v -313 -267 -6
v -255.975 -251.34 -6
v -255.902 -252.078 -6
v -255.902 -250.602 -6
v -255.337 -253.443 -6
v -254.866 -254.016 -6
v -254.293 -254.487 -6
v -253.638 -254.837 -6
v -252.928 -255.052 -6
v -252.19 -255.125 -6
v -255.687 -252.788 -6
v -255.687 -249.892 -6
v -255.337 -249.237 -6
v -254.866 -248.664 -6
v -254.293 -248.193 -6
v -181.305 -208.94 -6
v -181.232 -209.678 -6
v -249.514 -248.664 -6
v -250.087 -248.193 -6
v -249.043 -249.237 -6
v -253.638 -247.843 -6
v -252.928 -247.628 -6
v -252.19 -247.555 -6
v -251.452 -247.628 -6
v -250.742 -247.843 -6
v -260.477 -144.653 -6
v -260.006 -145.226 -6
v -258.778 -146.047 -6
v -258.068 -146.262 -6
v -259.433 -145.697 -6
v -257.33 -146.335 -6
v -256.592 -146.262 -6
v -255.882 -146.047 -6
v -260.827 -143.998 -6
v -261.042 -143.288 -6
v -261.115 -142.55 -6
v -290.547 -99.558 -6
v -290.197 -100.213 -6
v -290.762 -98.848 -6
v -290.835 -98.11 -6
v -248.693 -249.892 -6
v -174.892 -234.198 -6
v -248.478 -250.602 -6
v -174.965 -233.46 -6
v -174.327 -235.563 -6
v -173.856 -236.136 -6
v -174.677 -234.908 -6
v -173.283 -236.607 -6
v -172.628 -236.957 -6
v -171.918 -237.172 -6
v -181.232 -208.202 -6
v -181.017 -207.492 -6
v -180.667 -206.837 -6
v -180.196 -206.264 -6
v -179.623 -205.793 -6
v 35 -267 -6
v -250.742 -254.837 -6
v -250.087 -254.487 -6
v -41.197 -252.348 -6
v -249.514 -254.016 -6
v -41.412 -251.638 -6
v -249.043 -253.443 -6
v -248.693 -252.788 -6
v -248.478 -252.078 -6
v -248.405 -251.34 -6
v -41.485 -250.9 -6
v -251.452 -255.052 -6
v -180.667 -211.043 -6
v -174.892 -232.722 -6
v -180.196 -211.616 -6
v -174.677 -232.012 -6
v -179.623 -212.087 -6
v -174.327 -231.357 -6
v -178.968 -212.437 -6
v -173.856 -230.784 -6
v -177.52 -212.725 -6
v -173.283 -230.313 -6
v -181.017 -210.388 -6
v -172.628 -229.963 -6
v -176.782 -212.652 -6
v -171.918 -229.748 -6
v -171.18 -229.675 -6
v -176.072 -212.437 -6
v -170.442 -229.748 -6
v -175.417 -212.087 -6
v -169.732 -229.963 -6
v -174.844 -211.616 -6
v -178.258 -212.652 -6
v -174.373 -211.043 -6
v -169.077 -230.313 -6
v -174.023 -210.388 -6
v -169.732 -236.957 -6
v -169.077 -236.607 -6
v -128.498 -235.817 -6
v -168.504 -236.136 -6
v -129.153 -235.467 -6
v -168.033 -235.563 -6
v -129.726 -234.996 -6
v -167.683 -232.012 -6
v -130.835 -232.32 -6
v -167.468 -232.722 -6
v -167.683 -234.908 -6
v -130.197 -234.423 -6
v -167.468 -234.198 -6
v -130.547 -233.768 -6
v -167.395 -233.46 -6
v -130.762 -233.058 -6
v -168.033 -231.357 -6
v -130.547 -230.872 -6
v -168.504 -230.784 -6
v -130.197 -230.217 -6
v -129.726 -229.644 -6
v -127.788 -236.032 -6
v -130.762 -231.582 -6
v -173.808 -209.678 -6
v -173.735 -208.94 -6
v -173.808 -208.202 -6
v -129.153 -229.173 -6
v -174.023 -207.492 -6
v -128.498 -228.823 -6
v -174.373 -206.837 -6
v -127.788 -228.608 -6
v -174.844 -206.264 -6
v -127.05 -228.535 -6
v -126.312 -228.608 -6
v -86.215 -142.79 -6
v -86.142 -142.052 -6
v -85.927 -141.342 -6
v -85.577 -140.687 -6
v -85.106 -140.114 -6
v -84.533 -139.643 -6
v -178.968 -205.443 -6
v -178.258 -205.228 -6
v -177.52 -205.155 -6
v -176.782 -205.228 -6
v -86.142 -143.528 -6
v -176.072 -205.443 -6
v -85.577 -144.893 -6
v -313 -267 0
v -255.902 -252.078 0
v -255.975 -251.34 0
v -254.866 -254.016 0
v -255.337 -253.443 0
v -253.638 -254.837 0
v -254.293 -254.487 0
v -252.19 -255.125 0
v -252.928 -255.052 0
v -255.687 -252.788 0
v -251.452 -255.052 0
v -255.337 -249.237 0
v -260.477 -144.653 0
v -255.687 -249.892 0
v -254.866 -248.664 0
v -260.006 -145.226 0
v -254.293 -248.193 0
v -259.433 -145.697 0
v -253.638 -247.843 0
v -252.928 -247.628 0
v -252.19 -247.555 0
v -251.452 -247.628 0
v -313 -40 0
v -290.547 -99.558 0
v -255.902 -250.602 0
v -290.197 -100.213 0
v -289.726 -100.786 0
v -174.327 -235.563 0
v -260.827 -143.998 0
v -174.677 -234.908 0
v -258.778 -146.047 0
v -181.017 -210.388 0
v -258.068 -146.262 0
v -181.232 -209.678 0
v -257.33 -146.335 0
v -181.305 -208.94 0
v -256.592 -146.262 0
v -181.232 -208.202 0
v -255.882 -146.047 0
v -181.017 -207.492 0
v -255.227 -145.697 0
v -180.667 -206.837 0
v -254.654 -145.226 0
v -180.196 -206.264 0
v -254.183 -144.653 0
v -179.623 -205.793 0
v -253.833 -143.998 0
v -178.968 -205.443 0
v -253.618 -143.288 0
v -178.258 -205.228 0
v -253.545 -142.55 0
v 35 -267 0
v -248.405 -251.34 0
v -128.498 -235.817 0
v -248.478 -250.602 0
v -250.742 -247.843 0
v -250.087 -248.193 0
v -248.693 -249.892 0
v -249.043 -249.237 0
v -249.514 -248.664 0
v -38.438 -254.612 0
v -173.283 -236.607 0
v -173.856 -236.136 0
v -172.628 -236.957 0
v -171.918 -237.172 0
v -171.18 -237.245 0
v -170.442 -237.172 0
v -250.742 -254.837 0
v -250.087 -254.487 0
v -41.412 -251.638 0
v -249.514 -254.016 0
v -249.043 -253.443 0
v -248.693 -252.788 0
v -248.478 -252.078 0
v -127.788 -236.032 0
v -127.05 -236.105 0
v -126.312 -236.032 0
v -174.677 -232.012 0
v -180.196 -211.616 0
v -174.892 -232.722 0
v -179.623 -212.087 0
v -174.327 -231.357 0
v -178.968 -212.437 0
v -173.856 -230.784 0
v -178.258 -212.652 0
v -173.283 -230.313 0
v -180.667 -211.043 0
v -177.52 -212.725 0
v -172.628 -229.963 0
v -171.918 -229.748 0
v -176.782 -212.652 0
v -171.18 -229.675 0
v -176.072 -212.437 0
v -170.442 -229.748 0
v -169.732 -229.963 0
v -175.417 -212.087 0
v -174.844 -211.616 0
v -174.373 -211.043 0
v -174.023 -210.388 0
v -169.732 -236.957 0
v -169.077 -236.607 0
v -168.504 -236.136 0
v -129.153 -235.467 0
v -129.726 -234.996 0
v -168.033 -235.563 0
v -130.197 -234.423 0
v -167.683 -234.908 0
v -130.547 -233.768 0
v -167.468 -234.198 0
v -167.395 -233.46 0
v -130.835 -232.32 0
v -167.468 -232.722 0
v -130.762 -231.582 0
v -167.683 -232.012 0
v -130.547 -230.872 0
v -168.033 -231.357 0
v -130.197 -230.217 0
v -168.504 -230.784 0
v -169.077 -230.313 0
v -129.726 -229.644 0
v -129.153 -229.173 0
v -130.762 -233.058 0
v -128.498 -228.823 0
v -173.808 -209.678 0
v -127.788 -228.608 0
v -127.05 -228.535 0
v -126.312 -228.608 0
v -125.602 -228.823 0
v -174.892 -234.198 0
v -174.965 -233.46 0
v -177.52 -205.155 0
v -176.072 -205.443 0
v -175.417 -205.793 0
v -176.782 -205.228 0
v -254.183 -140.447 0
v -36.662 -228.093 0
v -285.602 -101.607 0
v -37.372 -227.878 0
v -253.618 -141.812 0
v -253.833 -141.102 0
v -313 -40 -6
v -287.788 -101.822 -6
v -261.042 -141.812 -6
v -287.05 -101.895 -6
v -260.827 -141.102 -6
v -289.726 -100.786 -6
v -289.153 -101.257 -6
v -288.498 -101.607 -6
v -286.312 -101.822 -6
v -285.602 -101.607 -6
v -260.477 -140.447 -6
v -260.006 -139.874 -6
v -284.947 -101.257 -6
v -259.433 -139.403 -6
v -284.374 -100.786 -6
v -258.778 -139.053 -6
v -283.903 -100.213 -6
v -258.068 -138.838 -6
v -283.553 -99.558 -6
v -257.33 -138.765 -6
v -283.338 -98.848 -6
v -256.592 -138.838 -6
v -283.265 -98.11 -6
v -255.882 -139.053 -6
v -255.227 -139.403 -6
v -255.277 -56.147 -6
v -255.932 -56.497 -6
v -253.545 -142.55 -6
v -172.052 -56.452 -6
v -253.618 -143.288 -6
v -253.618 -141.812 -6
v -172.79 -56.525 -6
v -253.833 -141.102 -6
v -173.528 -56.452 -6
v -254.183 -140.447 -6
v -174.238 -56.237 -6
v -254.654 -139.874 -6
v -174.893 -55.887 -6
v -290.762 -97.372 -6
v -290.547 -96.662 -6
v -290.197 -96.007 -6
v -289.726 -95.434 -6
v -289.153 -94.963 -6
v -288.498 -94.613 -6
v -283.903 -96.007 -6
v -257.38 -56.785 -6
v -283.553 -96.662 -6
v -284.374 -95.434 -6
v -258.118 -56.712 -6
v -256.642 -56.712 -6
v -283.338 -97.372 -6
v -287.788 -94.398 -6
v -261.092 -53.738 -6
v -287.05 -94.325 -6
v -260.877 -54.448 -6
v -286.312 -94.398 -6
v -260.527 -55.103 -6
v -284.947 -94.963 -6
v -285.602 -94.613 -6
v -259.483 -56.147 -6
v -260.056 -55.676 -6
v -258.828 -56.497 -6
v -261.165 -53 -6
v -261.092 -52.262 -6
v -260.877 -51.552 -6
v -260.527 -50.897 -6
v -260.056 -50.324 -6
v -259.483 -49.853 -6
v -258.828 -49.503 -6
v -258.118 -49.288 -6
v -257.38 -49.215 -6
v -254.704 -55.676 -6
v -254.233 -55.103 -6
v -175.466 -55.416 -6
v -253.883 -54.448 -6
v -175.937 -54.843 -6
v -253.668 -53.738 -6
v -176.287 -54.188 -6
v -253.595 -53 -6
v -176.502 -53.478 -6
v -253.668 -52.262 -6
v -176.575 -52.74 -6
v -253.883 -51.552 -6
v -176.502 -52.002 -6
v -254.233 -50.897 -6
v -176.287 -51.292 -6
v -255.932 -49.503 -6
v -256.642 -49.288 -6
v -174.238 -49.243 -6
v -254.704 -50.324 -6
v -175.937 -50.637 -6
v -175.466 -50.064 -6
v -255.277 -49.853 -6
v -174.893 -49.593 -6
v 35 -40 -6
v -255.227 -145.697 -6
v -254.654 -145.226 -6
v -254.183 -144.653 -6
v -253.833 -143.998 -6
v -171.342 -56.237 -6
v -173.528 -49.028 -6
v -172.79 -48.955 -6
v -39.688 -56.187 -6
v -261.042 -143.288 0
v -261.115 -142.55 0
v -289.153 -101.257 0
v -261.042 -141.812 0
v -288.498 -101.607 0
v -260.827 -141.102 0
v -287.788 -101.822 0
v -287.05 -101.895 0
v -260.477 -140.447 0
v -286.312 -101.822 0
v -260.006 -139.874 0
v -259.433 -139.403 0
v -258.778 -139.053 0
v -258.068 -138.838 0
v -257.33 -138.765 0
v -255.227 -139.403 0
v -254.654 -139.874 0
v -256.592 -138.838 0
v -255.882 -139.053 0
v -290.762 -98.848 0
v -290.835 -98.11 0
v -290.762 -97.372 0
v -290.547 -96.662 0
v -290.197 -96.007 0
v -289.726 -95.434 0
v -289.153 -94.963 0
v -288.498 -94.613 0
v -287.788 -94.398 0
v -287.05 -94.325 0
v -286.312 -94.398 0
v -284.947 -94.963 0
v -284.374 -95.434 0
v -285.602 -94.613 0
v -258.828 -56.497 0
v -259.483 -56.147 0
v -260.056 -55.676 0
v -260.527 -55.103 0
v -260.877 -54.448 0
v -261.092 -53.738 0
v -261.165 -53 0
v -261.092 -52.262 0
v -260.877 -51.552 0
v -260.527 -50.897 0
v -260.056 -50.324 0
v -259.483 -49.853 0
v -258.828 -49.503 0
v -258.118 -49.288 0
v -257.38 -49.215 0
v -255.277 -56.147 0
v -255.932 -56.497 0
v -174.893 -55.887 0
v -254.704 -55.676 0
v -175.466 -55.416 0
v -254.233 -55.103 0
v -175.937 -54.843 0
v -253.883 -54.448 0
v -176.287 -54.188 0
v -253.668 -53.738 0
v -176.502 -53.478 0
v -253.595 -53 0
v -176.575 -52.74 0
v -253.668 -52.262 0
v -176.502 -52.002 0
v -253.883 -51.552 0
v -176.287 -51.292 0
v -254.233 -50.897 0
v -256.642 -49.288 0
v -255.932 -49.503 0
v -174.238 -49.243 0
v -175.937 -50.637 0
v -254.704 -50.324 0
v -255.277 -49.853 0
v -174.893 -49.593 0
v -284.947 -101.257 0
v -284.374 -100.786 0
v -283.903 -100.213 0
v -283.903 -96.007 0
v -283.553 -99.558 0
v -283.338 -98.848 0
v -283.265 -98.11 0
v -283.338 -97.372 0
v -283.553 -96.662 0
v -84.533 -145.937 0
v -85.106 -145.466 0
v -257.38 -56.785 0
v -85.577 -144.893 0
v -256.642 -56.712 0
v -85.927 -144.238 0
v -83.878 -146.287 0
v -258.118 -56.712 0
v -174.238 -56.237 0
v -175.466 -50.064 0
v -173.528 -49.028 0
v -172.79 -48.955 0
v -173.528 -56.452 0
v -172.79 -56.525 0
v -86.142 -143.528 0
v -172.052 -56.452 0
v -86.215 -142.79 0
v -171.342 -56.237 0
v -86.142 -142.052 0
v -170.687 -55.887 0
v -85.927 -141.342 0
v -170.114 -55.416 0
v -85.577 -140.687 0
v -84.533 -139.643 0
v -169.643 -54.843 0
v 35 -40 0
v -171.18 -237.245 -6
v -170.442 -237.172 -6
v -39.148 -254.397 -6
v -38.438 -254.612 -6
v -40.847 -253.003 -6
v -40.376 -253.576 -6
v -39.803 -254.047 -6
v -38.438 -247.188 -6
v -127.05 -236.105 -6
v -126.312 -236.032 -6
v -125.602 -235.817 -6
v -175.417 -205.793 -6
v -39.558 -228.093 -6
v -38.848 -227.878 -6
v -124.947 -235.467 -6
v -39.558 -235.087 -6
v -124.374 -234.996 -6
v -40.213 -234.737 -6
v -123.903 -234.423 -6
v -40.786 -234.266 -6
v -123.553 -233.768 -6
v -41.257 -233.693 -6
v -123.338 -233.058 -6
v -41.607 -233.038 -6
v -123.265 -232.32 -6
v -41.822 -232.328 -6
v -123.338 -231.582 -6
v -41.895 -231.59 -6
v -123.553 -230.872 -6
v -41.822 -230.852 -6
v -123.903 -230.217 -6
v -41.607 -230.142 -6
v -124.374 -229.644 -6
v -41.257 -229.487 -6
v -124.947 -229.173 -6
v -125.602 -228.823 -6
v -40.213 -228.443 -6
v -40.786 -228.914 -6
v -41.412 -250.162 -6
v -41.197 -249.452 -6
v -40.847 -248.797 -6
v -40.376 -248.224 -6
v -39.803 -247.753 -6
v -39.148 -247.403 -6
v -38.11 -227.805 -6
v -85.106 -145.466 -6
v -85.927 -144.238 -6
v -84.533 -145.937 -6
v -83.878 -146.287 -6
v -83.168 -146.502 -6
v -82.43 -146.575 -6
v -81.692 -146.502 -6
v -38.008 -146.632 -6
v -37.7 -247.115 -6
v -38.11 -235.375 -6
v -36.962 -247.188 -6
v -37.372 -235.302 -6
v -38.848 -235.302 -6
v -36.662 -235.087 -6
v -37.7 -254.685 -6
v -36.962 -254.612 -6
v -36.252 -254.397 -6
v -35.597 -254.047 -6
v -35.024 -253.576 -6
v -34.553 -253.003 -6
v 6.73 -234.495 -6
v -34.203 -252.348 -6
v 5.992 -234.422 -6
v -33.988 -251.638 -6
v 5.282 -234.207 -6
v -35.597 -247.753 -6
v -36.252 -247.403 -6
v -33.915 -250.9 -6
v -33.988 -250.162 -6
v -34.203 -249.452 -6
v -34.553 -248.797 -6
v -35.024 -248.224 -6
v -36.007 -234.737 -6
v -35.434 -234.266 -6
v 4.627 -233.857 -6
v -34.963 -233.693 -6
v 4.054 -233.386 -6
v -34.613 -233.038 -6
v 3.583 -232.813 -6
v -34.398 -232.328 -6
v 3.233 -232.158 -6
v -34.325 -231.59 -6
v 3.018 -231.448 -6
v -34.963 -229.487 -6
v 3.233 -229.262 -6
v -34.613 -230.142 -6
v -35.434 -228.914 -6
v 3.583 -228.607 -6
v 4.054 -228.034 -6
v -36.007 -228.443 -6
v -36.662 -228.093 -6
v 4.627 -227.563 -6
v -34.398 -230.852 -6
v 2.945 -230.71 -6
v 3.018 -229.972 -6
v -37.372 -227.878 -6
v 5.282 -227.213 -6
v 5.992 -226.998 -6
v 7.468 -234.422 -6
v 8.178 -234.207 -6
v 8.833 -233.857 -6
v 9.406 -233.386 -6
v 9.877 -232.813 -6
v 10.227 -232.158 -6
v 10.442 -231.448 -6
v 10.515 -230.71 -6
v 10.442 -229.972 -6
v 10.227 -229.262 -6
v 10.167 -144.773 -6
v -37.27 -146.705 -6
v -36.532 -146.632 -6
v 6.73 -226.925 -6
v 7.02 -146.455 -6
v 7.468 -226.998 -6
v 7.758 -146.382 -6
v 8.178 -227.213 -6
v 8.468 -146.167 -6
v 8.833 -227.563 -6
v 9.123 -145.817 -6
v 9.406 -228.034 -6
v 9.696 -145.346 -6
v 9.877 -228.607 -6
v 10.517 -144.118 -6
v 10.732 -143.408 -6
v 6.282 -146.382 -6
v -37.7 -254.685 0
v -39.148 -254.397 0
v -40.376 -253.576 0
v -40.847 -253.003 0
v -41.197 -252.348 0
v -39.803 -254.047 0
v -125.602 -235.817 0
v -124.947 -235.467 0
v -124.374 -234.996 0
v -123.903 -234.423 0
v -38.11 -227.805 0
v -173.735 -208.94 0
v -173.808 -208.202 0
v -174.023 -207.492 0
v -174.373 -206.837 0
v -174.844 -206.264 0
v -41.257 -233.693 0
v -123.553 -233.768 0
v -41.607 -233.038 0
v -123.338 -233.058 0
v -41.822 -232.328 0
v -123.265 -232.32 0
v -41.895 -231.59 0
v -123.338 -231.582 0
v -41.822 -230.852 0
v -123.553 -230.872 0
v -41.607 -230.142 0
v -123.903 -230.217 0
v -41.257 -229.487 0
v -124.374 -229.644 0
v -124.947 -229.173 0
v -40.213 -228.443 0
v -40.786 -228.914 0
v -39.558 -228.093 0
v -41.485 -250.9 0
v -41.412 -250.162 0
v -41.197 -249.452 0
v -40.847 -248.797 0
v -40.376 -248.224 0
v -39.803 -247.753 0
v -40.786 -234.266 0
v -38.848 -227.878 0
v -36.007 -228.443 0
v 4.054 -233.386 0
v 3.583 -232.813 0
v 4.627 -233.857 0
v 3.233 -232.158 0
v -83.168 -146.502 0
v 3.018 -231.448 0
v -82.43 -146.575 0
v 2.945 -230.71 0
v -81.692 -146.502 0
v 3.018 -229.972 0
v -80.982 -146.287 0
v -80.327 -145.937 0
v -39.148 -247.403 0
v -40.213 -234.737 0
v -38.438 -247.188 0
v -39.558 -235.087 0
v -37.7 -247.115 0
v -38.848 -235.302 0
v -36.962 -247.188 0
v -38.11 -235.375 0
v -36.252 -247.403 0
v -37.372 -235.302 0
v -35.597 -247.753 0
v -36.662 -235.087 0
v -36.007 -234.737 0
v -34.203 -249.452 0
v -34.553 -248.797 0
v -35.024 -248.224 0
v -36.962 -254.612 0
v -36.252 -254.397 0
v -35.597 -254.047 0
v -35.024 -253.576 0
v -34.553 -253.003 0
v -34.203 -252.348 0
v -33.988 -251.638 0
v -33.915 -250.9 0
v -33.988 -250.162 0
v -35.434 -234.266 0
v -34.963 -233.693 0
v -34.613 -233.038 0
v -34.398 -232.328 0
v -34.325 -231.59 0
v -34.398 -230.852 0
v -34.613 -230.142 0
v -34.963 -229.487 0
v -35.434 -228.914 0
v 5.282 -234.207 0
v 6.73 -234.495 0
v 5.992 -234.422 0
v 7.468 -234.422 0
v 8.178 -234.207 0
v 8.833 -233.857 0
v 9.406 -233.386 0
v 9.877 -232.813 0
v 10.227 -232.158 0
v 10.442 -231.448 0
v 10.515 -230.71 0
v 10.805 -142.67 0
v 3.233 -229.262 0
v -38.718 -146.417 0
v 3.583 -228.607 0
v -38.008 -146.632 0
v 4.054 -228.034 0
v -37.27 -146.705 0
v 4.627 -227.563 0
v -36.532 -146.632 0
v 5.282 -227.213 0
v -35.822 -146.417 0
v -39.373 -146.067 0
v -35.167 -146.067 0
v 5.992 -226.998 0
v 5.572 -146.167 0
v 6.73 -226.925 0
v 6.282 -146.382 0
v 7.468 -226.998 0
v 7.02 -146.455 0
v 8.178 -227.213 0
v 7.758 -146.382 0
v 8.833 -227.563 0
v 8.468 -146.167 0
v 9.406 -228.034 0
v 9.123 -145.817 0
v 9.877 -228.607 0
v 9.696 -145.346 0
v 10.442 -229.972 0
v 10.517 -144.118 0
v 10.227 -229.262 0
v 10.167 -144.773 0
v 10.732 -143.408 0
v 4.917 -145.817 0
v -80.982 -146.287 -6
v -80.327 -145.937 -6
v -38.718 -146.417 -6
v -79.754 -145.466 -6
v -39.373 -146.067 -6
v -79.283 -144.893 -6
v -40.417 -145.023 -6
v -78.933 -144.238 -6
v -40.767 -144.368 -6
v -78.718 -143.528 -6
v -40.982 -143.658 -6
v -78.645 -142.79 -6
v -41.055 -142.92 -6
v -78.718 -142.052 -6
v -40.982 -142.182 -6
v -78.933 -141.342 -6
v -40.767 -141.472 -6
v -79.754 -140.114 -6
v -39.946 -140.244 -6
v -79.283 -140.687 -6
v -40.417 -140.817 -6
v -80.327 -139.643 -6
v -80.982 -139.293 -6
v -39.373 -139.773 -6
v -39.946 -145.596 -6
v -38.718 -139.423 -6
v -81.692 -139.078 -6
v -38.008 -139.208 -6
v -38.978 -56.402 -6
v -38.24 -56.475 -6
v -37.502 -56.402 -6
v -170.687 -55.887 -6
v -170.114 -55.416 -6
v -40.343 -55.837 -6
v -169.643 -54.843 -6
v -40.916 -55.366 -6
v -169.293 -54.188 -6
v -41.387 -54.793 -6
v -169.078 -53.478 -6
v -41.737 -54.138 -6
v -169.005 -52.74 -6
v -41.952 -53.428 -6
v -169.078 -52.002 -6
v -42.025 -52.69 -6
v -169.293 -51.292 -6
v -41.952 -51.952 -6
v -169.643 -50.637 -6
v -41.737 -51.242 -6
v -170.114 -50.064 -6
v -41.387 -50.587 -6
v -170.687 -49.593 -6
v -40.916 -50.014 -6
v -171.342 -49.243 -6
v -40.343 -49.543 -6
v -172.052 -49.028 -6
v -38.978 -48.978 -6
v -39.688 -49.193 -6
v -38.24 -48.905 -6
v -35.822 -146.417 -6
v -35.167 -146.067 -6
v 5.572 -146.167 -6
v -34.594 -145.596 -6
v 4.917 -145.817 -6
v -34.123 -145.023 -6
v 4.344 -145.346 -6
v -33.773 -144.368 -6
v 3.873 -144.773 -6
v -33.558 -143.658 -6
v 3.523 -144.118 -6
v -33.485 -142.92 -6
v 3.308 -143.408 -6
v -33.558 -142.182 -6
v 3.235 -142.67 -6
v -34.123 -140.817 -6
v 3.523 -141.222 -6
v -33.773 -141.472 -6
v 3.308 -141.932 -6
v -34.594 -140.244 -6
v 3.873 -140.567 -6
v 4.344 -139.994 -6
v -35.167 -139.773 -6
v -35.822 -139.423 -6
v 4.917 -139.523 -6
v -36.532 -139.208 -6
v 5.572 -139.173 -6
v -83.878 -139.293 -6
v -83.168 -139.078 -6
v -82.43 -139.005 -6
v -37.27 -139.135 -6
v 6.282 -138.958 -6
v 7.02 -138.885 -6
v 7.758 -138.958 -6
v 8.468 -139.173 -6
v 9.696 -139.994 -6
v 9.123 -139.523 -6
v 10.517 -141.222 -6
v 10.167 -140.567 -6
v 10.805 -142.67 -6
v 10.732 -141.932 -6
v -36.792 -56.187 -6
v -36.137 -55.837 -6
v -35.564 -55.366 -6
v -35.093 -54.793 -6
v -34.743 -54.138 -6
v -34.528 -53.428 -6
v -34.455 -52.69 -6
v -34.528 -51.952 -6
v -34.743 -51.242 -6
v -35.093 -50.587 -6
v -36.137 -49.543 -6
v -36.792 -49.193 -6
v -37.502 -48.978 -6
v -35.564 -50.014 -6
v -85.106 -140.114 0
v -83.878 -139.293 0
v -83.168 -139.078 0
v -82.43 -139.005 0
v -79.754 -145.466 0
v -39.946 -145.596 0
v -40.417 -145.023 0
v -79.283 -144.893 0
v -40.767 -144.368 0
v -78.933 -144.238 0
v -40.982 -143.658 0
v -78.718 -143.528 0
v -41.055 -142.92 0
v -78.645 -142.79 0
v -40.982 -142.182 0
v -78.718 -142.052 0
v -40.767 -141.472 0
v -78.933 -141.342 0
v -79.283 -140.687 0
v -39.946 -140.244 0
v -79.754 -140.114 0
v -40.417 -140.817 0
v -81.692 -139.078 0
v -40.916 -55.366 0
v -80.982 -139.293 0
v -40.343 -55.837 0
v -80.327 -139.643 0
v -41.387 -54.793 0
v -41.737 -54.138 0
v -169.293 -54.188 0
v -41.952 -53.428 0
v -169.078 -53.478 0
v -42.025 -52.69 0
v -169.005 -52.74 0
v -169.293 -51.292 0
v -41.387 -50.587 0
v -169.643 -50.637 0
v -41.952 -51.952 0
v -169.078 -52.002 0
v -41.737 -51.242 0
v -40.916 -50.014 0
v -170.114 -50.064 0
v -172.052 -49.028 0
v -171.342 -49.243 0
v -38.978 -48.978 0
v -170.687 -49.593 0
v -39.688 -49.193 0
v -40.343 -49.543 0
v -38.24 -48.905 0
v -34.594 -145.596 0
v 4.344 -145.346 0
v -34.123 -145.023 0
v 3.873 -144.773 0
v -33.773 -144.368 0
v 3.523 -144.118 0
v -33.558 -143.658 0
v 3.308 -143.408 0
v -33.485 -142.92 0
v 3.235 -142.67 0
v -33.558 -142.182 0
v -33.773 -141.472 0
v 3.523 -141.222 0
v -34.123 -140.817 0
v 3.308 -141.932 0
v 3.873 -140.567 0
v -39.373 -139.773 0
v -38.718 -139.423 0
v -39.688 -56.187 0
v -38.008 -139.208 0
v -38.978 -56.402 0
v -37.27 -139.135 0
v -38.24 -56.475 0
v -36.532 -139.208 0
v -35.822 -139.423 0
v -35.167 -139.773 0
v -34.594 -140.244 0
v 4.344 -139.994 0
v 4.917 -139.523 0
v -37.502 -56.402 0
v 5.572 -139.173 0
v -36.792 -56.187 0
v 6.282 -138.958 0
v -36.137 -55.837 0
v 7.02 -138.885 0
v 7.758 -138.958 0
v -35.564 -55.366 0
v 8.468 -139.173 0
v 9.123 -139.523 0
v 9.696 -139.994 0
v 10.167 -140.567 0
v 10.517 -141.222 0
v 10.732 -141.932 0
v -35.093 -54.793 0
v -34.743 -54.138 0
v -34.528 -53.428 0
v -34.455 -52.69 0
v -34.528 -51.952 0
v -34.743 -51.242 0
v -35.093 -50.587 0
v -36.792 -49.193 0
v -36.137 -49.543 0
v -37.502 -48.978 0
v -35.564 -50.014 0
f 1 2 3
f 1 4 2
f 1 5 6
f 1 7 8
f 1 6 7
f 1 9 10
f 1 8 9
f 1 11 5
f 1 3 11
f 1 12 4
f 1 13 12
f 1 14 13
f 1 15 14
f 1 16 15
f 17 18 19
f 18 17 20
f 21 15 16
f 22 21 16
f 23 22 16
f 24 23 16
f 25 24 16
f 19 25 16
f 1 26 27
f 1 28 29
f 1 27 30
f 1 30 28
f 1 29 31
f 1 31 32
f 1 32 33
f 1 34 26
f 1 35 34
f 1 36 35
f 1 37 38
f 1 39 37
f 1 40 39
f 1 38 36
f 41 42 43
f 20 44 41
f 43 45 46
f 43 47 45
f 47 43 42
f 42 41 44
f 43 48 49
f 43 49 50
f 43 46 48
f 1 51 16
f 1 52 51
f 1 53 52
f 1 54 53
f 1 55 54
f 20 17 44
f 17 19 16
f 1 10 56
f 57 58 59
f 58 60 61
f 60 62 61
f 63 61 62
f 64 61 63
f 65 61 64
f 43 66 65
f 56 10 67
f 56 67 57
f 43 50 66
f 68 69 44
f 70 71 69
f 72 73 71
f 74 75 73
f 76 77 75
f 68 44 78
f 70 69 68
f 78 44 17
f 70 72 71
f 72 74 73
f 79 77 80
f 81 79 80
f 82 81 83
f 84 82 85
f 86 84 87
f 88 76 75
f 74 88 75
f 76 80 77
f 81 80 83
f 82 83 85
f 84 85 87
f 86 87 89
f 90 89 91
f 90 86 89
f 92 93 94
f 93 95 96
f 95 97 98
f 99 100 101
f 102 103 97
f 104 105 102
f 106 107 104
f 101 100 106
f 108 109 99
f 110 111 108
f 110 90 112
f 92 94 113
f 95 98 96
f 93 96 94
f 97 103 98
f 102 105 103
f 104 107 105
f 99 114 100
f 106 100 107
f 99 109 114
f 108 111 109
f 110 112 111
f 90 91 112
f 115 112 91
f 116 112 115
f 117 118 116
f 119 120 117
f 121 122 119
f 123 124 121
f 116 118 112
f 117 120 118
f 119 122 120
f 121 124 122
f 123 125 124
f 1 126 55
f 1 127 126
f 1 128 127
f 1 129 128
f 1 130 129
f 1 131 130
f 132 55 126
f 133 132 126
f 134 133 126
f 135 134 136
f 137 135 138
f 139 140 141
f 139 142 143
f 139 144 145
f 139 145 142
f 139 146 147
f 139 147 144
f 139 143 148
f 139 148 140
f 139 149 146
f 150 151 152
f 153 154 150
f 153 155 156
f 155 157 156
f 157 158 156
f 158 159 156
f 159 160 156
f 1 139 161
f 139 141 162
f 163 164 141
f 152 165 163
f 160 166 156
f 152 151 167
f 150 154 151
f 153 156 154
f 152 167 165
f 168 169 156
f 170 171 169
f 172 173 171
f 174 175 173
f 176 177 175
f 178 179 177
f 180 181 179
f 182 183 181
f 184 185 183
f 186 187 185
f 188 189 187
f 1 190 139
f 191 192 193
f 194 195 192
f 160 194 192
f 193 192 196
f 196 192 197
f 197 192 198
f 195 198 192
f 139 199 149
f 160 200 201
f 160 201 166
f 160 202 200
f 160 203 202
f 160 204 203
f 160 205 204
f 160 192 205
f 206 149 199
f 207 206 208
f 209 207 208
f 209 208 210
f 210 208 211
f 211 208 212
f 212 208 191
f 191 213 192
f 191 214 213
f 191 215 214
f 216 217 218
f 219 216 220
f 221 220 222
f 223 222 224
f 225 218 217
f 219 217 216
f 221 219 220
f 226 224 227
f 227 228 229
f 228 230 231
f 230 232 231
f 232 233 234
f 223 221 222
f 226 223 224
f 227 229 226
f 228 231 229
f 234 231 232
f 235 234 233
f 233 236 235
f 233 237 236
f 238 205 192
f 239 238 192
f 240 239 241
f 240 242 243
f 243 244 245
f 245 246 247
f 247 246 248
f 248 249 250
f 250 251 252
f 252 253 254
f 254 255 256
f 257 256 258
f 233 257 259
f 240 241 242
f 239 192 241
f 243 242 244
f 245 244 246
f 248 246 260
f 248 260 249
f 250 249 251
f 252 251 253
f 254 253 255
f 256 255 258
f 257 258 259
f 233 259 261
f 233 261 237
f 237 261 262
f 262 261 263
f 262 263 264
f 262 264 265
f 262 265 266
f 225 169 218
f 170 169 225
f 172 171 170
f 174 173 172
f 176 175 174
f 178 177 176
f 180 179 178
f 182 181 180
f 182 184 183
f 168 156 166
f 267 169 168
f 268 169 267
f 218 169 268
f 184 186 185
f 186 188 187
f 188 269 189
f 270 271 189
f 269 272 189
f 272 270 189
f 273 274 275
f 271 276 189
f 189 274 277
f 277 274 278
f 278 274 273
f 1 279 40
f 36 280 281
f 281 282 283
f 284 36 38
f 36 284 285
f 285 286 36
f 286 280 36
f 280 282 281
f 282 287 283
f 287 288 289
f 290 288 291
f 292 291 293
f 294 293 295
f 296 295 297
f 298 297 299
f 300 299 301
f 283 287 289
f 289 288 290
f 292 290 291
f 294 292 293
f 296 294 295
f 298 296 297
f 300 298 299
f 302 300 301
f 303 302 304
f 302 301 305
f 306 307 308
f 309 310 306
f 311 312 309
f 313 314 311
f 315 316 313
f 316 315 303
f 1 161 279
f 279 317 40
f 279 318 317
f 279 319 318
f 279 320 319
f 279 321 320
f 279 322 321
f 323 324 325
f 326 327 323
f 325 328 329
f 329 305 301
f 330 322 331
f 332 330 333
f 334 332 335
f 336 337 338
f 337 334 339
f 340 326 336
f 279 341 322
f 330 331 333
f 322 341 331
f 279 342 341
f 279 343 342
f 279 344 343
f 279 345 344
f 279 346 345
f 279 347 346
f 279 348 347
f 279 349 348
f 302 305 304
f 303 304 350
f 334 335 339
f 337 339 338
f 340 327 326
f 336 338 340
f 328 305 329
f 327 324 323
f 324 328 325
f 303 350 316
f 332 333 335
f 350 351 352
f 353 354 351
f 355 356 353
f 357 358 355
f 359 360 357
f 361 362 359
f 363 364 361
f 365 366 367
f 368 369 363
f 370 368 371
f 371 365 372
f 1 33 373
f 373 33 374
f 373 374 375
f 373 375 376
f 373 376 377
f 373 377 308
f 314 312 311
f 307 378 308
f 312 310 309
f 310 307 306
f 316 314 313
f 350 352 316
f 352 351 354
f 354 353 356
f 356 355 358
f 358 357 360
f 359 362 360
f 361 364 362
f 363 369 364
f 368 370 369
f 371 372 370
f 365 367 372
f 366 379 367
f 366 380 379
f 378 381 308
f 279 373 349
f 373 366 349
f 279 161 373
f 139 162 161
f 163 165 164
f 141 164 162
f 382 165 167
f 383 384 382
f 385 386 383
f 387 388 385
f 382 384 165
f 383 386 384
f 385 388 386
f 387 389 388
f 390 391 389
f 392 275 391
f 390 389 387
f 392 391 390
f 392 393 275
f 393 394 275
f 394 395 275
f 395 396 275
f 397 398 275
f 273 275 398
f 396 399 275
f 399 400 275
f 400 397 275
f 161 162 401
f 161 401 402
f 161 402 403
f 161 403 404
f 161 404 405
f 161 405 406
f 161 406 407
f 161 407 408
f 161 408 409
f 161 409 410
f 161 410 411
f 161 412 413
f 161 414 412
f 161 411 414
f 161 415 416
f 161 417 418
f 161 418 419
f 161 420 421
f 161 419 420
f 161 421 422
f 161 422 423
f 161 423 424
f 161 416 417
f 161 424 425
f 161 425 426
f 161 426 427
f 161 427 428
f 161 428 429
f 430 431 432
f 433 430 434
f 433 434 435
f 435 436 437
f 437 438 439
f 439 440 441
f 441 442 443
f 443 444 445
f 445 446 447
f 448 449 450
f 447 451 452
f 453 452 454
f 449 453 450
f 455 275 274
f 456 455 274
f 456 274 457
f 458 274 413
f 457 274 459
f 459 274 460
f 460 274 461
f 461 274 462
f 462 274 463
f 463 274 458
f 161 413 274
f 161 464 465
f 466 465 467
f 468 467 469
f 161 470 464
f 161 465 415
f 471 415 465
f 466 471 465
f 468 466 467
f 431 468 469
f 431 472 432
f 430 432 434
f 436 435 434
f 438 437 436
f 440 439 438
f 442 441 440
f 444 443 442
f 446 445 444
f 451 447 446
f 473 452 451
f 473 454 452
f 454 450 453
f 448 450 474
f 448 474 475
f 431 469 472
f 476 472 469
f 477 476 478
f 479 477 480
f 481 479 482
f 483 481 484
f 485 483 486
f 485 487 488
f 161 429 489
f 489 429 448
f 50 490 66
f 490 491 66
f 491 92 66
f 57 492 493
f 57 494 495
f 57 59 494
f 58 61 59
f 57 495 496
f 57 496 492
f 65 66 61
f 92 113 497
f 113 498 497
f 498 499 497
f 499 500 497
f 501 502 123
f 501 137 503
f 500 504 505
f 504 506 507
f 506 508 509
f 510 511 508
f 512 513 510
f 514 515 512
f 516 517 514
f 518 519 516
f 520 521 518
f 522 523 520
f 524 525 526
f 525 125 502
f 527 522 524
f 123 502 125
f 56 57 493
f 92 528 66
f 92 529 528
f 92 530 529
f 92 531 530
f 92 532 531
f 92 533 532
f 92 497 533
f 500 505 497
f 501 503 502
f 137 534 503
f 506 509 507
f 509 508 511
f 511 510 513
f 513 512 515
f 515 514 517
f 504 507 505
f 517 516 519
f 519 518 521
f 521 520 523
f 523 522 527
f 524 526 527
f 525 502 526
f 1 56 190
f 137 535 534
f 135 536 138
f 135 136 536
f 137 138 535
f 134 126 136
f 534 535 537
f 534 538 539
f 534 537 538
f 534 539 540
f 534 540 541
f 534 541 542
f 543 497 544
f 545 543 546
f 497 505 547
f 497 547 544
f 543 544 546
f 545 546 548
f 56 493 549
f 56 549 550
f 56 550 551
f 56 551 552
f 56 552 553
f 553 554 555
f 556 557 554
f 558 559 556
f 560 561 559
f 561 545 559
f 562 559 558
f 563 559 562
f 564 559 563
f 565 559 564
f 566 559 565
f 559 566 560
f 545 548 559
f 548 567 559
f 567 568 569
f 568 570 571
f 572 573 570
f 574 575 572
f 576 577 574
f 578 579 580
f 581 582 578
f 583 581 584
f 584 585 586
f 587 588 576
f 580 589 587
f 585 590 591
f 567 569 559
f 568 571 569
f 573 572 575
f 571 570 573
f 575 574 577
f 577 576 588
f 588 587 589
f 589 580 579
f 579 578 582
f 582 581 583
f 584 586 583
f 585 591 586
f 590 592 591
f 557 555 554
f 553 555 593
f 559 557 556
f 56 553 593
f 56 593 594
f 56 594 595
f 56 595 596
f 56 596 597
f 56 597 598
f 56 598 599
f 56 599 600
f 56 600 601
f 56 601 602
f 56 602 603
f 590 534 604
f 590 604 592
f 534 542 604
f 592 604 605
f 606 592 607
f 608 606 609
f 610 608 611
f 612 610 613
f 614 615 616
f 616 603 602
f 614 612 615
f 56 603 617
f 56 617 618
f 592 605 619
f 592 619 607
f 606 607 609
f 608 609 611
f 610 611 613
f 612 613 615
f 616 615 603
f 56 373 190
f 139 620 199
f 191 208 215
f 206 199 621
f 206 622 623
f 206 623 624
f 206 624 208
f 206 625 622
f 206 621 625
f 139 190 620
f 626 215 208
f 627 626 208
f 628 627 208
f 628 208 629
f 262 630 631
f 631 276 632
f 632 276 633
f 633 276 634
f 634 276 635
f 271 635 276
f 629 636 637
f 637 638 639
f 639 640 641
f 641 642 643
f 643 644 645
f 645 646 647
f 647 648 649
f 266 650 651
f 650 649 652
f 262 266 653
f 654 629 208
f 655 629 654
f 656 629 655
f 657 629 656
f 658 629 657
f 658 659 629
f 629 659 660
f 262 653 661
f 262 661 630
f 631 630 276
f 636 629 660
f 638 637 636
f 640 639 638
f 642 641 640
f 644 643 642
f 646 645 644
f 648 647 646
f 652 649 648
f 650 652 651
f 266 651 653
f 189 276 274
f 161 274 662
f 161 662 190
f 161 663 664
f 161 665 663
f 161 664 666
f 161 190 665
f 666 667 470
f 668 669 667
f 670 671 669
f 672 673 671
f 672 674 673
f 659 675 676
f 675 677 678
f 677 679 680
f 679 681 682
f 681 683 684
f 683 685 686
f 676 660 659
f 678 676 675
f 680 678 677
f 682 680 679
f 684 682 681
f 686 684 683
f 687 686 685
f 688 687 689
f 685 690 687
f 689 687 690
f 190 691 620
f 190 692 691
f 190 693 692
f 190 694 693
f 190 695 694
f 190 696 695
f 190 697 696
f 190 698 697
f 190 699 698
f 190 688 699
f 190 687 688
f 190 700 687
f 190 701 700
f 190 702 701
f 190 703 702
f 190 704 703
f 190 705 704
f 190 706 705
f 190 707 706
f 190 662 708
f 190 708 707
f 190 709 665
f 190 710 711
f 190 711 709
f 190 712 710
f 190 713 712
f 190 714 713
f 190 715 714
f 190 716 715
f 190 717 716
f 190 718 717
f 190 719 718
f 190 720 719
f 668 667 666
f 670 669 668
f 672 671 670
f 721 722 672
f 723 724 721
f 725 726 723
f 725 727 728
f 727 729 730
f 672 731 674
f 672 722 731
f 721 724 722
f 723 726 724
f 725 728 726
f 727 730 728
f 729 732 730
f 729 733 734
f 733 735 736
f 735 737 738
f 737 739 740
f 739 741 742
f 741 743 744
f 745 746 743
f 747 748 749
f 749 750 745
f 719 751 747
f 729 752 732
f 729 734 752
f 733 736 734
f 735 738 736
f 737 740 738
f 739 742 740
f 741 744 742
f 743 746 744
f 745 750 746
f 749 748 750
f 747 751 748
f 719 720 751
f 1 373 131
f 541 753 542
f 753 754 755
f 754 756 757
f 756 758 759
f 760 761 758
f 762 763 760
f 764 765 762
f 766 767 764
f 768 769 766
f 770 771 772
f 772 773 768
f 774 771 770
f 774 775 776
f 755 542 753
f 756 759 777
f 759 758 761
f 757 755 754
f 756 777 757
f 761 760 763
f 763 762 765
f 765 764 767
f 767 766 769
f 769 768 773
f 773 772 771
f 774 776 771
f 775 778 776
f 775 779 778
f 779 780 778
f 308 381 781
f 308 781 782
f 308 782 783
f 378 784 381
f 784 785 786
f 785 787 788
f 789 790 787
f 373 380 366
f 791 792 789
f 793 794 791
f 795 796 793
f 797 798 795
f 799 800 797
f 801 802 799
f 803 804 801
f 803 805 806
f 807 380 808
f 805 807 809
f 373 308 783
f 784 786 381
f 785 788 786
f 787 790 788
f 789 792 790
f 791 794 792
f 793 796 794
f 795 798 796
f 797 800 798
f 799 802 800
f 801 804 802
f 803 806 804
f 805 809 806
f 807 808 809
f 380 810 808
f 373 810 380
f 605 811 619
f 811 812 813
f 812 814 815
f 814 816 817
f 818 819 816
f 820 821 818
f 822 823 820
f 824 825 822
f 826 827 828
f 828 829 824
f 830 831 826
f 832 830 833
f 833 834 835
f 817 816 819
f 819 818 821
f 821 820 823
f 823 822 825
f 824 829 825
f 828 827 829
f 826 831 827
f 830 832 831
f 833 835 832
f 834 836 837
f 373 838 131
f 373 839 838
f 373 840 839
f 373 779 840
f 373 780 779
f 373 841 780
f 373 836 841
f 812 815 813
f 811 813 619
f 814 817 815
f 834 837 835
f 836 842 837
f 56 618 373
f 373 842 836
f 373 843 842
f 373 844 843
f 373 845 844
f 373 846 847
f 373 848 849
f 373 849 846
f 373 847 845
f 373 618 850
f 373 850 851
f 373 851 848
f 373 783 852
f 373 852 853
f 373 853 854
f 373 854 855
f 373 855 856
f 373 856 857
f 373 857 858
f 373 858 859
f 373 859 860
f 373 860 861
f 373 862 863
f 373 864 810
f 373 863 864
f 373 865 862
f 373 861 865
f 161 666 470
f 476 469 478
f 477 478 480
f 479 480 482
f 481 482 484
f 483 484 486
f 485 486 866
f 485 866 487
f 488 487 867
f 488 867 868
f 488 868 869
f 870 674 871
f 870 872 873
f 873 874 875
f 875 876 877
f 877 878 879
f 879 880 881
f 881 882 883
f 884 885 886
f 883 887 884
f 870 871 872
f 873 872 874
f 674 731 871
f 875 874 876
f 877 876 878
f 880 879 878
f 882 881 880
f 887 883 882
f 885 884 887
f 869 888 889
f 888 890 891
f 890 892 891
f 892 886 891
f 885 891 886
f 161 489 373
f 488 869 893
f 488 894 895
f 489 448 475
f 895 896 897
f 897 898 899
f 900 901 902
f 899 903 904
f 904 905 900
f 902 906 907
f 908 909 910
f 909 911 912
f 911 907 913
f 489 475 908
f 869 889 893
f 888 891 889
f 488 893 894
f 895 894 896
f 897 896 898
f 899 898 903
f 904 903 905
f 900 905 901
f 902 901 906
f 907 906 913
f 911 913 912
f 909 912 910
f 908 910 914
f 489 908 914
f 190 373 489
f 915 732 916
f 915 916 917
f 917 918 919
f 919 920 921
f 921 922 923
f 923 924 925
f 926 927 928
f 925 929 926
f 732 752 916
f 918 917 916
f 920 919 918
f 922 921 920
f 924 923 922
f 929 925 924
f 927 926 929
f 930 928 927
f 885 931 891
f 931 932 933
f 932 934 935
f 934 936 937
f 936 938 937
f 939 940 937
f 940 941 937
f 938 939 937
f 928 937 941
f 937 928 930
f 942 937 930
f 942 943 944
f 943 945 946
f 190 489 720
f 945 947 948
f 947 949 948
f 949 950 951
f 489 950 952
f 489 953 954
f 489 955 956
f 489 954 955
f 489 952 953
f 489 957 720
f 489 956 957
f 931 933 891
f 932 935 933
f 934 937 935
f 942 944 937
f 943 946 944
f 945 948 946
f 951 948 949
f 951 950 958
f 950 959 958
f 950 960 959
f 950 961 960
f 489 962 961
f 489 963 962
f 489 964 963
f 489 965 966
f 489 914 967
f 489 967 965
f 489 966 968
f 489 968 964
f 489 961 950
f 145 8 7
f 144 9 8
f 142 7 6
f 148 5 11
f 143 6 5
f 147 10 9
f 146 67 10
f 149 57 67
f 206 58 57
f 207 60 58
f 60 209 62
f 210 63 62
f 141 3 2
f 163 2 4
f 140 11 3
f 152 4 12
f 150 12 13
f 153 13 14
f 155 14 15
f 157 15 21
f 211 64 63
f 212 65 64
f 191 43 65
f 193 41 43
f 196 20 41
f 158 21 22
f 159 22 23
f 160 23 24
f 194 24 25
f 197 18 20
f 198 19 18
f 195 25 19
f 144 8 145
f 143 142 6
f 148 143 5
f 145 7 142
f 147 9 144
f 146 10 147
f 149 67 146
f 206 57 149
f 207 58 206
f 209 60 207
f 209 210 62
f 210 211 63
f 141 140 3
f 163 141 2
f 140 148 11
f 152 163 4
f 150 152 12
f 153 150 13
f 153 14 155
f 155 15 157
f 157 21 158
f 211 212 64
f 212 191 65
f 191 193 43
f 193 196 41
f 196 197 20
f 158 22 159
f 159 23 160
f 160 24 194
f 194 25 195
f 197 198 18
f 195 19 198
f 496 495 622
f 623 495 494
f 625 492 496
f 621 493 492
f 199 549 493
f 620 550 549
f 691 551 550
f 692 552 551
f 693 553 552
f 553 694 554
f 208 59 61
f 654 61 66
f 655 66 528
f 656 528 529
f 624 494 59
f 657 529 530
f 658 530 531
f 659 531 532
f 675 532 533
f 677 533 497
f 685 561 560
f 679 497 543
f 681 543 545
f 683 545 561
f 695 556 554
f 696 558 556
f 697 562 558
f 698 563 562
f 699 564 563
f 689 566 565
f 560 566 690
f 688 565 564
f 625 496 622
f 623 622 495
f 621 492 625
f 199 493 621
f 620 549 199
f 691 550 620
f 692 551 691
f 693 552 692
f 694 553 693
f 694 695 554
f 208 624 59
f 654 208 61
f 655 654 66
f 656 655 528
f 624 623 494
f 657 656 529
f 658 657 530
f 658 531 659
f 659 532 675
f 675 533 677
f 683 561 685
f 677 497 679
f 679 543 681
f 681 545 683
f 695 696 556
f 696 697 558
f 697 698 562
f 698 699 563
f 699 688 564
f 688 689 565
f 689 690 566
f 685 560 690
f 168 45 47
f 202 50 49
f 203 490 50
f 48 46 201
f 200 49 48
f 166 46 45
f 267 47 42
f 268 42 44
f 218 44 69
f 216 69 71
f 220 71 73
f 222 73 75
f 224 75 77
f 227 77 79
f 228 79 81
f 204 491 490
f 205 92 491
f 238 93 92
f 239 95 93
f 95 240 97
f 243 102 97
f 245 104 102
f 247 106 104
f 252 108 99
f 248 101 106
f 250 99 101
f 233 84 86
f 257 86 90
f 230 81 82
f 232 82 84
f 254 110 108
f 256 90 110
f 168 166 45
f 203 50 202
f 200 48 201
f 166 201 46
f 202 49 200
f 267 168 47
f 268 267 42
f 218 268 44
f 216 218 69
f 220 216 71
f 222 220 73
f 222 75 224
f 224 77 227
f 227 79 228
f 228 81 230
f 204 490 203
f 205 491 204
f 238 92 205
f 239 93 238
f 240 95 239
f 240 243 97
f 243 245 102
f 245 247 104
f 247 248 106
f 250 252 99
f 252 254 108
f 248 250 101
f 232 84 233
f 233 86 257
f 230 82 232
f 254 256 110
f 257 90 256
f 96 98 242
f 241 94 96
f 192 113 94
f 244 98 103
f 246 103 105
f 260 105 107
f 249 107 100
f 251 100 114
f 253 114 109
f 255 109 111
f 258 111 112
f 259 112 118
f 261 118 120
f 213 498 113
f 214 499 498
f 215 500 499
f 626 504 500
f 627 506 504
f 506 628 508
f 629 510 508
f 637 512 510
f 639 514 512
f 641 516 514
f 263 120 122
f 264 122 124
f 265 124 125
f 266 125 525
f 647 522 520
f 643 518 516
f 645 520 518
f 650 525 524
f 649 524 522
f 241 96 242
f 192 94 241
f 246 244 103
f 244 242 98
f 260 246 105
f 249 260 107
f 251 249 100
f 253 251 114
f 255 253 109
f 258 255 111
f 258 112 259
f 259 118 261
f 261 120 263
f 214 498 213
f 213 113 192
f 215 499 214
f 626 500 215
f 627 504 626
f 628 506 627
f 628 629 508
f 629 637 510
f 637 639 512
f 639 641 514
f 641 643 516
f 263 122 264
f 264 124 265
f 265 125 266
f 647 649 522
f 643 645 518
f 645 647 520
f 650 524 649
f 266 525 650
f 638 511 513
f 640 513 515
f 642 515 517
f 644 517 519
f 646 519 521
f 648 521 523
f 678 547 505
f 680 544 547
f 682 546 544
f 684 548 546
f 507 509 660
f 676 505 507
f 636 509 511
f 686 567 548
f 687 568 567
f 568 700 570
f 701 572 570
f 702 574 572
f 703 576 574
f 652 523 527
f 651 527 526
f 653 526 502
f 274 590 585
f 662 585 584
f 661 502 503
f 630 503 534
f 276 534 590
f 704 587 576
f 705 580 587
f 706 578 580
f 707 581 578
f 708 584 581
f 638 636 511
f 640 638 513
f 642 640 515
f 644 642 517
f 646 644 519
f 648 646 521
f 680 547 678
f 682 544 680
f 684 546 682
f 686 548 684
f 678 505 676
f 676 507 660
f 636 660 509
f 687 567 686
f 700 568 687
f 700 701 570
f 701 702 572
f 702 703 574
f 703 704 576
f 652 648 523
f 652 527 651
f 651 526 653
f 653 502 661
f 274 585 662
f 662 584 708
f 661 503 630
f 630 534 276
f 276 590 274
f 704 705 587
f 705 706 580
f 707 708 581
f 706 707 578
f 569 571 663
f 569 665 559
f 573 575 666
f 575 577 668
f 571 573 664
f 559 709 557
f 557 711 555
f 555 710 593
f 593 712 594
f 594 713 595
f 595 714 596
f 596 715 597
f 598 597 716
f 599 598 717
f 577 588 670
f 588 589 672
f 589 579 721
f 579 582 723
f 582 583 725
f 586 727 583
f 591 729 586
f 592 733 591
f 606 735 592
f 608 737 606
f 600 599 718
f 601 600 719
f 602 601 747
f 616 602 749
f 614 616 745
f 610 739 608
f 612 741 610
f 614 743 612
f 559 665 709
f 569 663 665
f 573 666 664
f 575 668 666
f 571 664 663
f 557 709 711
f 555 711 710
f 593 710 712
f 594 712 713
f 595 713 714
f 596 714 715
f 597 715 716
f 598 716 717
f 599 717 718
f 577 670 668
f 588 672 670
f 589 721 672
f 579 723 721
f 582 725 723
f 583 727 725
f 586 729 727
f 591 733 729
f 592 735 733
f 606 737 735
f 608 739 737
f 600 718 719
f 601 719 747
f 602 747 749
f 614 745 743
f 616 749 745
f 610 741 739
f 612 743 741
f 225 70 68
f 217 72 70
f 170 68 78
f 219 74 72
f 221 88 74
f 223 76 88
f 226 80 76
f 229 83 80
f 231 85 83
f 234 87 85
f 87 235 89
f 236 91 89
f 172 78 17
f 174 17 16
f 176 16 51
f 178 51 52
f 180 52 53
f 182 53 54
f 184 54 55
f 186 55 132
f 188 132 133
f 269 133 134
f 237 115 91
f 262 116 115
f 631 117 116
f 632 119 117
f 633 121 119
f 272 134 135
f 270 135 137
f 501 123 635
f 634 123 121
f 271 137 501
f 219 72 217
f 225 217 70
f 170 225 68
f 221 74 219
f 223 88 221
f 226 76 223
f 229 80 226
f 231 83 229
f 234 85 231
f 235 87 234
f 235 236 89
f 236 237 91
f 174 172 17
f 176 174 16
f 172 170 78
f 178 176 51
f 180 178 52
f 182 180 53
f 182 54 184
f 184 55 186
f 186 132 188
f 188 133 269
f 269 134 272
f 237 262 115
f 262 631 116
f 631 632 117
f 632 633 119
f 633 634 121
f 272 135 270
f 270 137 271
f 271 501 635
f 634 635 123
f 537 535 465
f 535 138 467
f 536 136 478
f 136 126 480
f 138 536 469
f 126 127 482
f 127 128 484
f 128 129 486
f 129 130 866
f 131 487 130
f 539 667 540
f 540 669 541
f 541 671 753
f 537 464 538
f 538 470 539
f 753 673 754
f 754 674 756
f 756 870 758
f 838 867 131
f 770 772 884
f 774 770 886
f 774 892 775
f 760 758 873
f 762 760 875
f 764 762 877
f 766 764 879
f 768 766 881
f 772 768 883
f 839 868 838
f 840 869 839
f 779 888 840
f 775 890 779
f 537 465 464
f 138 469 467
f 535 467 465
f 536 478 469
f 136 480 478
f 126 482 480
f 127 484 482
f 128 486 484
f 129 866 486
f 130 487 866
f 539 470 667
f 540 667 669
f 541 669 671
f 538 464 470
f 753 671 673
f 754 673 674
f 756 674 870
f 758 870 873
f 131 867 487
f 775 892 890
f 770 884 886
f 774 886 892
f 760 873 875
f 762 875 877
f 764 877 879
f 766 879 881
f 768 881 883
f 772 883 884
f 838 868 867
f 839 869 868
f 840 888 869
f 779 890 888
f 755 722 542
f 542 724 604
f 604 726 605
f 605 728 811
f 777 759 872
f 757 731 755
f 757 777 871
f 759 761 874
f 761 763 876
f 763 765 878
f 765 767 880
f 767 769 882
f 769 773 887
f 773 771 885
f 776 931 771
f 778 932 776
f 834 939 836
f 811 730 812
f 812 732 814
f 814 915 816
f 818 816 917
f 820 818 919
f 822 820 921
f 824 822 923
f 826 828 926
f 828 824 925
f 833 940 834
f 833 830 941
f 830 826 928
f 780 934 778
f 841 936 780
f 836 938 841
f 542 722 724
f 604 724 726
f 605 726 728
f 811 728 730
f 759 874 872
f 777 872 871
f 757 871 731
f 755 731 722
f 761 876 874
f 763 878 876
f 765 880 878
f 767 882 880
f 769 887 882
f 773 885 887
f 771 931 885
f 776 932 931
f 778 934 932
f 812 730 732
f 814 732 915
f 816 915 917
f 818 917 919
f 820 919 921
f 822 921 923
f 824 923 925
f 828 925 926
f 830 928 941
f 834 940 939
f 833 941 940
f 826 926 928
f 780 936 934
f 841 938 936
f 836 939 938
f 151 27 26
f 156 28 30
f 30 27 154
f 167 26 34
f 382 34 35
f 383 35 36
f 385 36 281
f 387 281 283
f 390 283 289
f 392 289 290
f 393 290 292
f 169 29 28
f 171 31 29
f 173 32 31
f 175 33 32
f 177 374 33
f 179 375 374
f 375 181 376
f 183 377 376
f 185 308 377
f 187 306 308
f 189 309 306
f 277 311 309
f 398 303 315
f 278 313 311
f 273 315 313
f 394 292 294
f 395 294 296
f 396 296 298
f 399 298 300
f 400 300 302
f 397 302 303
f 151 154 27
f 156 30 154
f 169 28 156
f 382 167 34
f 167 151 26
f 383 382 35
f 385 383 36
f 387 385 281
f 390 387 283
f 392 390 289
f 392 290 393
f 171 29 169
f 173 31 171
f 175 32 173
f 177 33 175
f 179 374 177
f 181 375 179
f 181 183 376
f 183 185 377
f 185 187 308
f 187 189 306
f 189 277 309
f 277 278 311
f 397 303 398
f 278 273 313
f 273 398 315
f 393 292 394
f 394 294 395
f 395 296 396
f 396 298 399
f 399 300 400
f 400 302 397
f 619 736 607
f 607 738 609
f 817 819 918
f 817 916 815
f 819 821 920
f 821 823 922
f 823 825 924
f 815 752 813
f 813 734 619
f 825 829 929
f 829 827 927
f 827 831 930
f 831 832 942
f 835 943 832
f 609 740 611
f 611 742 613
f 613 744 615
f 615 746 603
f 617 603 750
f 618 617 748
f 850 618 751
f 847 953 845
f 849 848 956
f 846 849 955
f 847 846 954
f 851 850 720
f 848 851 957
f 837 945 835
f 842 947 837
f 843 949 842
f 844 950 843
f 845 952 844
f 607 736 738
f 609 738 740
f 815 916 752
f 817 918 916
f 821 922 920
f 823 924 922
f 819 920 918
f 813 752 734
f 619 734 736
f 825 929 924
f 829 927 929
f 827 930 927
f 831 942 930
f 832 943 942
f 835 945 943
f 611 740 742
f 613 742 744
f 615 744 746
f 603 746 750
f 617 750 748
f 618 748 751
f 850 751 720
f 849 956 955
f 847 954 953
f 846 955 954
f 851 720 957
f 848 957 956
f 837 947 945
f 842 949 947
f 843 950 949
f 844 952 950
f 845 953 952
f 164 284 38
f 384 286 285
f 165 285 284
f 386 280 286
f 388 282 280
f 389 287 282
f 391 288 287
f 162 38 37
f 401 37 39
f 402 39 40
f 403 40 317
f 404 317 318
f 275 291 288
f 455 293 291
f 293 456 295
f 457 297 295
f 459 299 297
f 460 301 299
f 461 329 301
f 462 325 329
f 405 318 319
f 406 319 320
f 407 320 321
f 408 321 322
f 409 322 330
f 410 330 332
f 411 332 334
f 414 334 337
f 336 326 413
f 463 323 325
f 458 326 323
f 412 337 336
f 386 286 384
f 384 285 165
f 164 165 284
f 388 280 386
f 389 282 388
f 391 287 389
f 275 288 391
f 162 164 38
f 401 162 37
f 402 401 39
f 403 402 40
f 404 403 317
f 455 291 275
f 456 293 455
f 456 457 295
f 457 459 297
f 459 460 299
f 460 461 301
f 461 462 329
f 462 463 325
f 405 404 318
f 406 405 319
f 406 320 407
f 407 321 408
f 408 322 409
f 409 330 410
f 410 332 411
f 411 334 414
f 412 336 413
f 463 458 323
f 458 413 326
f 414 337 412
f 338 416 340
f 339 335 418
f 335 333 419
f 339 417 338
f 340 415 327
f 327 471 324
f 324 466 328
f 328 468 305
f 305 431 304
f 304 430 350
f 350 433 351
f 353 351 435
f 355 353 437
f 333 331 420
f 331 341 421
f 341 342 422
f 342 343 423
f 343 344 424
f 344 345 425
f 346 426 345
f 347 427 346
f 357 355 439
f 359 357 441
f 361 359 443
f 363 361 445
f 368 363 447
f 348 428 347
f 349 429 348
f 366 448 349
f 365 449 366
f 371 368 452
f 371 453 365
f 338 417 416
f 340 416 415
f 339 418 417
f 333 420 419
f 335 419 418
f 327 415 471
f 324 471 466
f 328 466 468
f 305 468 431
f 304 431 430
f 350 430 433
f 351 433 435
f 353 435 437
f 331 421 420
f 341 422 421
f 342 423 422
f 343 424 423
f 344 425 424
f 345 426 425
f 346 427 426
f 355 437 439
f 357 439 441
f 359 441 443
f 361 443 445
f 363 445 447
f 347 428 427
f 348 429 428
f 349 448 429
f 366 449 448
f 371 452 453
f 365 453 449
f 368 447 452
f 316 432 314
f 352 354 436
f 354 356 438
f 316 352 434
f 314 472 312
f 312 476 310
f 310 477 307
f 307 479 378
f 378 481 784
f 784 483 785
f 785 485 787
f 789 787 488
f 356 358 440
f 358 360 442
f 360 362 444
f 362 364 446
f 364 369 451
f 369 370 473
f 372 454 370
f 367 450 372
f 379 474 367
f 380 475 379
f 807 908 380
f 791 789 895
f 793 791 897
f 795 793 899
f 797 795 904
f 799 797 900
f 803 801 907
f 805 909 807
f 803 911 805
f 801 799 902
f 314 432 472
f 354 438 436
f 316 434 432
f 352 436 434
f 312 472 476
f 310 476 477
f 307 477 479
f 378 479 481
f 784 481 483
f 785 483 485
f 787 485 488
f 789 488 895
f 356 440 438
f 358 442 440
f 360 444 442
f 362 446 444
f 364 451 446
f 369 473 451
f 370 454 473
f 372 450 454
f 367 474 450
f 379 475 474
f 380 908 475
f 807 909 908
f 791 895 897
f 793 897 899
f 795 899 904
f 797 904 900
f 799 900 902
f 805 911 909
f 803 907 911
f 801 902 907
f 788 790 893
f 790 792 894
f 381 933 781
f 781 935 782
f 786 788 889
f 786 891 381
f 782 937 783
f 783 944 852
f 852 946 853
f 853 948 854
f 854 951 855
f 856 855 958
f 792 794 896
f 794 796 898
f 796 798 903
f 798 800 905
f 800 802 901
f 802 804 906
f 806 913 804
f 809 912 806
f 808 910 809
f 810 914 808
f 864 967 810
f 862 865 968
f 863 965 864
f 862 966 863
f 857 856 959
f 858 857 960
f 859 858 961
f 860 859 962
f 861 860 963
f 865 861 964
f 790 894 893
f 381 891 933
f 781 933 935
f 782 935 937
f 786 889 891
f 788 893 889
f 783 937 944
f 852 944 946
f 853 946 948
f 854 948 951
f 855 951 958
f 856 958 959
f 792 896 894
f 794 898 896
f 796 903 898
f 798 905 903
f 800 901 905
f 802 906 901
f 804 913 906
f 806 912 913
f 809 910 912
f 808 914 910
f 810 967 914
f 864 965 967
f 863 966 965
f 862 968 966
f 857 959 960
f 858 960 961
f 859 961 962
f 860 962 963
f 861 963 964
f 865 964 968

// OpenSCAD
difference() {
  translate([-313.00, -267.00, -6.00]) cube([348.00, 227.00, 6.00]);
  translate([-252.19, -251.34, -7.00]) cylinder(d=7.57, h=8.00, $fn=32);
  translate([-37.70, -250.90, -7.00]) cylinder(d=7.57, h=8.00, $fn=32);
  translate([-171.18, -233.46, -7.00]) cylinder(d=7.57, h=8.00, $fn=32);
  translate([-127.05, -232.32, -7.00]) cylinder(d=7.57, h=8.00, $fn=32);
  translate([-38.11, -231.59, -7.00]) cylinder(d=7.57, h=8.00, $fn=32);
  translate([6.73, -230.71, -7.00]) cylinder(d=7.57, h=8.00, $fn=32);
  translate([-177.52, -208.94, -7.00]) cylinder(d=7.57, h=8.00, $fn=32);
  translate([-82.43, -142.79, -7.00]) cylinder(d=7.57, h=8.00, $fn=32);
  translate([-37.27, -142.92, -7.00]) cylinder(d=7.57, h=8.00, $fn=32);
  translate([-257.33, -142.55, -7.00]) cylinder(d=7.57, h=8.00, $fn=32);
  translate([7.02, -142.67, -7.00]) cylinder(d=7.57, h=8.00, $fn=32);
  translate([-287.05, -98.11, -7.00]) cylinder(d=7.57, h=8.00, $fn=32);
  translate([-257.38, -53.00, -7.00]) cylinder(d=7.57, h=8.00, $fn=32);
  translate([-172.79, -52.74, -7.00]) cylinder(d=7.57, h=8.00, $fn=32);
  translate([-38.24, -52.69, -7.00]) cylinder(d=7.57, h=8.00, $fn=32);
}
